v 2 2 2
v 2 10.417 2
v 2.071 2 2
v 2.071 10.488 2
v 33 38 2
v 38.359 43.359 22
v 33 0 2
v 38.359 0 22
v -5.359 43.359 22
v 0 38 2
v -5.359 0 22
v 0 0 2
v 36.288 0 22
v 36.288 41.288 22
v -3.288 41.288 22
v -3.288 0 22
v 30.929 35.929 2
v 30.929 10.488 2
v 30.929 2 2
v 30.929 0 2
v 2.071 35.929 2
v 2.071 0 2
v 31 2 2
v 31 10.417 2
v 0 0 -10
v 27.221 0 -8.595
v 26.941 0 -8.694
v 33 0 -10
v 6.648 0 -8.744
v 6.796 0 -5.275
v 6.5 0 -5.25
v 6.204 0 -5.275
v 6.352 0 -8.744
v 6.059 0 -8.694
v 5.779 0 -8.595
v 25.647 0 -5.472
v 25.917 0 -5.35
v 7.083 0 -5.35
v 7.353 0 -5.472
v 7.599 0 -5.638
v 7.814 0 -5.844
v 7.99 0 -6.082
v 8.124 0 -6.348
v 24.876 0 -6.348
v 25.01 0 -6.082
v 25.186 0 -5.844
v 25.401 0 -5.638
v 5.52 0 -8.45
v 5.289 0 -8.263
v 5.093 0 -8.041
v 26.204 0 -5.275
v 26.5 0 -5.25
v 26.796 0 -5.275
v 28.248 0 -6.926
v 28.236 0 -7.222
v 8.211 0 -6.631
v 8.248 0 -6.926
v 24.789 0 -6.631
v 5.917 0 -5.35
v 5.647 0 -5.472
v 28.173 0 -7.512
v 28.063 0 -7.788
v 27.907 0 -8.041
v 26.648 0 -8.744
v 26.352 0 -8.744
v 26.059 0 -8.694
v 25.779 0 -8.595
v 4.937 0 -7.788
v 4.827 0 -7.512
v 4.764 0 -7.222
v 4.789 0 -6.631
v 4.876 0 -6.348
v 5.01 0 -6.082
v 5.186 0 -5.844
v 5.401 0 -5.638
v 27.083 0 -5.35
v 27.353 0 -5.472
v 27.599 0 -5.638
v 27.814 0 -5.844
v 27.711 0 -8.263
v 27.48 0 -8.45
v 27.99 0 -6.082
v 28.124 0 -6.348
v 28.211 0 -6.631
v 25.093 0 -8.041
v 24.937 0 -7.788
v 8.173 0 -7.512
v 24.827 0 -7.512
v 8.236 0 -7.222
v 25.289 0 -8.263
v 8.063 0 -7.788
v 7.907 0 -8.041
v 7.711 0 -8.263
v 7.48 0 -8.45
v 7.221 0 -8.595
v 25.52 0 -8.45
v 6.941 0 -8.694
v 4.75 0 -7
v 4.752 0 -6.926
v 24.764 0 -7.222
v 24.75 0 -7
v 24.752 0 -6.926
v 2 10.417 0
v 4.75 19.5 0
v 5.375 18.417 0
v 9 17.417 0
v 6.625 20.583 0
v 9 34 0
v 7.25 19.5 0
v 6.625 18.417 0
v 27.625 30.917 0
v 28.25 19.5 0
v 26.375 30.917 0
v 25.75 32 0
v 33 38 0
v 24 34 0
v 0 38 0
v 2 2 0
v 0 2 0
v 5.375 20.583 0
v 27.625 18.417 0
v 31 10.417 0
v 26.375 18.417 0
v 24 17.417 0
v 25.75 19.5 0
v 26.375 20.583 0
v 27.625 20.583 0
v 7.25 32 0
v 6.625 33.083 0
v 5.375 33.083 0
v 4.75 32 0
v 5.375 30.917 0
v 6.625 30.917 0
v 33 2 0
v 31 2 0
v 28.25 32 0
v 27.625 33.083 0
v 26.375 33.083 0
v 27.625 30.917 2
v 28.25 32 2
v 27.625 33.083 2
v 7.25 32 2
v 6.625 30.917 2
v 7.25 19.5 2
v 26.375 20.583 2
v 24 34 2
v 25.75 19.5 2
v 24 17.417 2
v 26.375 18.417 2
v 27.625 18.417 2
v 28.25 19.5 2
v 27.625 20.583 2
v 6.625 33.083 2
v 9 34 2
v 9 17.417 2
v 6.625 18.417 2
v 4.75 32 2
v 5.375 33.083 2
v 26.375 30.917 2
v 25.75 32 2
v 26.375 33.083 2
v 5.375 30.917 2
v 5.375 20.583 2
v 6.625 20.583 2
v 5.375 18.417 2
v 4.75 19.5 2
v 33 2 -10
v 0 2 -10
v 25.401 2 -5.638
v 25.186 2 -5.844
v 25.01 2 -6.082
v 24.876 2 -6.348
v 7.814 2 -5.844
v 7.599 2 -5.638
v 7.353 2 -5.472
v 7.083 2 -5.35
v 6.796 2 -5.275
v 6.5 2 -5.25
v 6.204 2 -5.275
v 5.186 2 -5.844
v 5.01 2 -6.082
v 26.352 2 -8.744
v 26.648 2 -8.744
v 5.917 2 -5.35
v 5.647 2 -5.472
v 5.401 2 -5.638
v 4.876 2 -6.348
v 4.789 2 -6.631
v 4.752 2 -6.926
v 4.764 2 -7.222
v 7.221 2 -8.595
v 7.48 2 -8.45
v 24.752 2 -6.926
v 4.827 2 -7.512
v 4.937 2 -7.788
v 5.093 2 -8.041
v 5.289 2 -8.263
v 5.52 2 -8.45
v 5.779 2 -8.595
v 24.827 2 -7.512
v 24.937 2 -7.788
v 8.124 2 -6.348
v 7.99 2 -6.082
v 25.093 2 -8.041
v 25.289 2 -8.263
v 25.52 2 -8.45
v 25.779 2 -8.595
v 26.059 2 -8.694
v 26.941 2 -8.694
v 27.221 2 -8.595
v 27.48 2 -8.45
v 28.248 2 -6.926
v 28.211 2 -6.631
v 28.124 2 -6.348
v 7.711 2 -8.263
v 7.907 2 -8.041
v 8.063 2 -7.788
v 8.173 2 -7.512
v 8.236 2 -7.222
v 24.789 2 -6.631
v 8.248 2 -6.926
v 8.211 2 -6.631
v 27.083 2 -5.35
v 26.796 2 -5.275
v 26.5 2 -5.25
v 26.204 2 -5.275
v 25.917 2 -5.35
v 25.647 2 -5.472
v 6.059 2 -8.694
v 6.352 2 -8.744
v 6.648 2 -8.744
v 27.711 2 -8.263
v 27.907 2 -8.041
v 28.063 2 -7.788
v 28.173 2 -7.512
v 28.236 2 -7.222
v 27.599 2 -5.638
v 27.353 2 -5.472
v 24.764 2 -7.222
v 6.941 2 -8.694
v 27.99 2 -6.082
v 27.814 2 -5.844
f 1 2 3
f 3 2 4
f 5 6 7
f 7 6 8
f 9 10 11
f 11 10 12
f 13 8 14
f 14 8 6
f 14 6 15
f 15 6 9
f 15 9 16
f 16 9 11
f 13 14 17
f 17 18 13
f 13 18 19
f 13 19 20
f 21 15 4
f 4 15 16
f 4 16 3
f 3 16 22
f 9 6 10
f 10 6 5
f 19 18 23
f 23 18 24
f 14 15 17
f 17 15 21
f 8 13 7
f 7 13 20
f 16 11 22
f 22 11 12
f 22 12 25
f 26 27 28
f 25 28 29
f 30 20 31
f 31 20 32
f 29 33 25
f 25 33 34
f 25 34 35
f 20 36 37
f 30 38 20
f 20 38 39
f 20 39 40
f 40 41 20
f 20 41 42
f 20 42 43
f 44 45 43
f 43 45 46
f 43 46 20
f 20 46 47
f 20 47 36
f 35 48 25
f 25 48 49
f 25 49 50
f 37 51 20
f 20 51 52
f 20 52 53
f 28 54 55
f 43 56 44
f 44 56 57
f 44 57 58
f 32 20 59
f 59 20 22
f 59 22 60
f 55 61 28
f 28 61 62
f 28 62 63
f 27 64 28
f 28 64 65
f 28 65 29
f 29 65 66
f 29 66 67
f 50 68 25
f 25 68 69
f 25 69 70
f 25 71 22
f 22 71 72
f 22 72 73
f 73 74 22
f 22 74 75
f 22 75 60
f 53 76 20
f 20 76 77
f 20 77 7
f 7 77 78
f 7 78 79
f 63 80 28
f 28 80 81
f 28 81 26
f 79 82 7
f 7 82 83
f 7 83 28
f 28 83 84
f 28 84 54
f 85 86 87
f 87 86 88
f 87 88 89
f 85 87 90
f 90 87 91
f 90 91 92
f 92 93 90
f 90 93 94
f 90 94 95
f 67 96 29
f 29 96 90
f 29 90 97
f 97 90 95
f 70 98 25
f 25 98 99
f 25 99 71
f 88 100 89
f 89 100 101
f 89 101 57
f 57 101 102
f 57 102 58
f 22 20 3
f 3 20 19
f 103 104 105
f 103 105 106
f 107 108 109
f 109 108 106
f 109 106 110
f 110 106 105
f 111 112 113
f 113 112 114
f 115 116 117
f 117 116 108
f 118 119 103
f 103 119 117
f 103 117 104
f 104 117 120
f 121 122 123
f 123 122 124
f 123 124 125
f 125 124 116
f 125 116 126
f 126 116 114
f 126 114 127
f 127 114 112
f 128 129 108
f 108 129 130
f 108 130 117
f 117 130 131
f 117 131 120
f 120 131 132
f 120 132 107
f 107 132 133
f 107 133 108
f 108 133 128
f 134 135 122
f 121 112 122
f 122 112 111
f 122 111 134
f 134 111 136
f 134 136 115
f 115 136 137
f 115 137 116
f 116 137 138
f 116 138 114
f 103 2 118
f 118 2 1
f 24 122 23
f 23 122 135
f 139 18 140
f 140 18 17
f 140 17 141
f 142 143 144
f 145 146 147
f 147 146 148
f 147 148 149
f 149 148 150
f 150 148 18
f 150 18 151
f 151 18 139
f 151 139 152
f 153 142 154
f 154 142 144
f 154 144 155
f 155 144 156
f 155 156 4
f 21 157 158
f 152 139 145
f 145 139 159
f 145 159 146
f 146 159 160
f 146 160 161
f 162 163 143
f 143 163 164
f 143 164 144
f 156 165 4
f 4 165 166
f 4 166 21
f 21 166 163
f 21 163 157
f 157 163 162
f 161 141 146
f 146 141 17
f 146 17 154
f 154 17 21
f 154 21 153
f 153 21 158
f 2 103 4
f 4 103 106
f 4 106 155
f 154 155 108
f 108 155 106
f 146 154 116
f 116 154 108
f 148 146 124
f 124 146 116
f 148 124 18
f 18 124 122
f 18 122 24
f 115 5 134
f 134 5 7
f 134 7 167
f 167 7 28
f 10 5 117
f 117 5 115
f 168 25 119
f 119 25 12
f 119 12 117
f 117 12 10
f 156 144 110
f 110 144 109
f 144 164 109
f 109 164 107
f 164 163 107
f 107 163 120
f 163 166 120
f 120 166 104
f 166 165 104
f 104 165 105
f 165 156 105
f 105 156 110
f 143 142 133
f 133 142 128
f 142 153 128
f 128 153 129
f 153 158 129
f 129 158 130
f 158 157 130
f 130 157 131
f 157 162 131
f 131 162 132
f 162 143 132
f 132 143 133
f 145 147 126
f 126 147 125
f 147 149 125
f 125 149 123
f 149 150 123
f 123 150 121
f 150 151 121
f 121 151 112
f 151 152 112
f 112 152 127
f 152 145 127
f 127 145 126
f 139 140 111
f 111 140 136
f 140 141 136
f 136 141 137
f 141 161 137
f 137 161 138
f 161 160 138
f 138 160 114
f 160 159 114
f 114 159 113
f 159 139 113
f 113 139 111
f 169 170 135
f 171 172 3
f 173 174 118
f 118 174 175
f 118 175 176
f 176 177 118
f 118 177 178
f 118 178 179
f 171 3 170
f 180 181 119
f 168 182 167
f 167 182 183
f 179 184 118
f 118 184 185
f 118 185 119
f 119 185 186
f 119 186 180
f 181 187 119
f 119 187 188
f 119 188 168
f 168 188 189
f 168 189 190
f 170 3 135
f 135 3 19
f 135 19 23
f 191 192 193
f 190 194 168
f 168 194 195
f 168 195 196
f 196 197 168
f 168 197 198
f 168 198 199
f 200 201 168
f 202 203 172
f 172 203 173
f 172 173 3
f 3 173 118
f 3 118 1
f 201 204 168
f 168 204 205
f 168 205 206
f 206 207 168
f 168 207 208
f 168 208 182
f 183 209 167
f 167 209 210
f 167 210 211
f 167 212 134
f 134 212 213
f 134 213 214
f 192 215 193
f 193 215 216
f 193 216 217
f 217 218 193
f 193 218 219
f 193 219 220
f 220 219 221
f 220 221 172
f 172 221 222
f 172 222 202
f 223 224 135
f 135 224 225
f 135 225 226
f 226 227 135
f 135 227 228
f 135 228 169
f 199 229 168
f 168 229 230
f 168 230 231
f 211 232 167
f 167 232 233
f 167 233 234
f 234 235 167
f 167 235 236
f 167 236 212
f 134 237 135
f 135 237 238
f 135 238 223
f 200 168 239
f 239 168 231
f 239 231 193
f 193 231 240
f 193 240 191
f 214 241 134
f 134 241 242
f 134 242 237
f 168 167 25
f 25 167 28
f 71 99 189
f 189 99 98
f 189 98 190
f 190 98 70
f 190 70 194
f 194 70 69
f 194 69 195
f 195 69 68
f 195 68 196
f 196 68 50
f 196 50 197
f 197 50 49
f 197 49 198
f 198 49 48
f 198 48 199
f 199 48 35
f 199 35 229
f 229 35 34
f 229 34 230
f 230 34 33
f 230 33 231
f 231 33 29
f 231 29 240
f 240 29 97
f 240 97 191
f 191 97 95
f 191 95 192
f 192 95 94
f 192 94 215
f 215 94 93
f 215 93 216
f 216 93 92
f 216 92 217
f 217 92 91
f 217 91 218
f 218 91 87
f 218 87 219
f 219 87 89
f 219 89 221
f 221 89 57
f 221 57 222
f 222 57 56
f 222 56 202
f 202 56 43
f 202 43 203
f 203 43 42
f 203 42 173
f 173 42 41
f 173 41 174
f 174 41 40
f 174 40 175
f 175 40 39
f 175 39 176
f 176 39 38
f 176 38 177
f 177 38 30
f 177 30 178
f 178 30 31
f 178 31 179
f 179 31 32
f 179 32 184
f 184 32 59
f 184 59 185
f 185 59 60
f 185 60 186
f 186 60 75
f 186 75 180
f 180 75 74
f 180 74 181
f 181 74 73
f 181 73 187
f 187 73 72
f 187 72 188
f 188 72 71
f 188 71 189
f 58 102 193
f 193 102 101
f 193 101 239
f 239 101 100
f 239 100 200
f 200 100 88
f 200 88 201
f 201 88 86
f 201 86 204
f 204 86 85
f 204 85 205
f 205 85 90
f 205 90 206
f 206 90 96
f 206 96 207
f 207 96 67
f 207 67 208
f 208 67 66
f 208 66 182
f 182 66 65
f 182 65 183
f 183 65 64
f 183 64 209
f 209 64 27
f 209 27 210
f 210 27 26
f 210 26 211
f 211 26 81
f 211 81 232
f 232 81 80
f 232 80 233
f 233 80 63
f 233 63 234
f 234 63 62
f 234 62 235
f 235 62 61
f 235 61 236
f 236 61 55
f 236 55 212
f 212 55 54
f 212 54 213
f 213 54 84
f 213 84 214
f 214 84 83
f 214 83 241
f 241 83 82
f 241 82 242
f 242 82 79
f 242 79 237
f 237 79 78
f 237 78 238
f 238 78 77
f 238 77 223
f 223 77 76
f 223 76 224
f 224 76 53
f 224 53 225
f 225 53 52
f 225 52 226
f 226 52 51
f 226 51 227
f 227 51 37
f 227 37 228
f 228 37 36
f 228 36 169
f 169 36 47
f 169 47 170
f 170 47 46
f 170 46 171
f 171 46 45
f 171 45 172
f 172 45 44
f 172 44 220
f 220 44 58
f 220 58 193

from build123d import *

# Parameters (mm, degrees)
BOSS_EXTRUDE1_DEPTH = 2
SKETCH2_W           = 33
SKETCH2_H           = 38
BOSS_EXTRUDE2_DEPTH = 20
BOSS_EXTRUDE2_DRAFT = -15
SHELL1_T            = -2
SKETCH3_W           = 33
SKETCH3_H           = 12
BOSS_EXTRUDE3_DEPTH = 2
SKETCH4_R           = 1.75
CUT_EXTRUDE1_DEPTH  = 61.547313622
SKETCH5_W           = 43.717967698
SKETCH5_H           = 20
CUT_EXTRUDE2_DEPTH  = 62.93071227


with BuildPart() as part:
    # Sketch1 → Boss-Extrude1 (new body)
    with BuildSketch(Plane.XY):
        Polygon((0, 0), (0, 38), (33, 38), (33, 0), (31, 0), (31, 10.417468245), (24, 17.417468245), (24, 34), (9, 34), (9, 17.417468245), (2, 10.417468245), (2, 0), align=None)
        Polygon((7.25, 32), (6.625, 33.082531755), (5.375, 33.082531755), (4.75, 32), (5.375, 30.917468245), (6.625, 30.917468245), align=None, mode=Mode.SUBTRACT)
        Polygon((7.25, 19.5), (6.625, 20.582531755), (5.375, 20.582531755), (4.75, 19.5), (5.375, 18.417468245), (6.625, 18.417468245), align=None, mode=Mode.SUBTRACT)
        Polygon((25.75, 19.5), (26.375, 18.417468245), (27.625, 18.417468245), (28.25, 19.5), (27.625, 20.582531755), (26.375, 20.582531755), align=None, mode=Mode.SUBTRACT)
        Polygon((28.25, 32), (27.625, 33.082531755), (26.375, 33.082531755), (25.75, 32), (26.375, 30.917468245), (27.625, 30.917468245), align=None, mode=Mode.SUBTRACT)
    extrude(amount=BOSS_EXTRUDE1_DEPTH)

    # Sketch3 → Boss-Extrude3 (add)
    with BuildSketch(Plane.XZ):
        with Locations((16.5, -4)):
            Rectangle(SKETCH3_W, SKETCH3_H)
    extrude(amount=-BOSS_EXTRUDE3_DEPTH)

    # Sketch4 → Cut-Extrude1 (cut, through all)
    with BuildSketch(Plane(origin=(0, 2, 0), x_dir=(1, 0, 0), z_dir=(0, 1, 0))):
        with Locations((26.5, 7)):
            Circle(SKETCH4_R)
        with Locations((6.5, 7)):
            Circle(SKETCH4_R)
    extrude(amount=-CUT_EXTRUDE1_DEPTH, mode=Mode.SUBTRACT)


with BuildPart() as body_2:
    # Sketch2 → Boss-Extrude2 (with draft: the straight prism first)
    with BuildSketch(Plane.XY.offset(2)):
        with Locations((16.5, 19)):
            Rectangle(SKETCH2_W, SKETCH2_H)
    extrude(amount=BOSS_EXTRUDE2_DEPTH)
    # Boss-Extrude2: the draft: its side faces are tilted about the plane it starts from
    boss_extrude2_sides = [body_2.faces().sort_by_distance(p)[0] for p in [
        (33, 19, 12),
        (16.5, 38, 12),
        (0, 19, 12),
        (16.5, 0, 12),
    ]]
    draft(boss_extrude2_sides, Plane.XY.offset(2), BOSS_EXTRUDE2_DRAFT)

    # Shell1
    shell1_openings = [body_2.faces().sort_by_distance(p)[0] for p in [
        (16.5, -2.804272376, 12.465686984),
        (16.5, 19, 22),
        (16.5, 19, 2),
    ]]
    offset(amount=SHELL1_T, openings=shell1_openings, kind=Kind.INTERSECTION)

    # Sketch5 → Cut-Extrude2 (cut, through all)
    with BuildSketch(Plane.XZ):
        with Locations((16.5, 12)):
            Rectangle(SKETCH5_W, SKETCH5_H)
    extrude(amount=CUT_EXTRUDE2_DEPTH, mode=Mode.SUBTRACT)

    # Combine1: union part
    add(part.part)


solid = body_2.part
